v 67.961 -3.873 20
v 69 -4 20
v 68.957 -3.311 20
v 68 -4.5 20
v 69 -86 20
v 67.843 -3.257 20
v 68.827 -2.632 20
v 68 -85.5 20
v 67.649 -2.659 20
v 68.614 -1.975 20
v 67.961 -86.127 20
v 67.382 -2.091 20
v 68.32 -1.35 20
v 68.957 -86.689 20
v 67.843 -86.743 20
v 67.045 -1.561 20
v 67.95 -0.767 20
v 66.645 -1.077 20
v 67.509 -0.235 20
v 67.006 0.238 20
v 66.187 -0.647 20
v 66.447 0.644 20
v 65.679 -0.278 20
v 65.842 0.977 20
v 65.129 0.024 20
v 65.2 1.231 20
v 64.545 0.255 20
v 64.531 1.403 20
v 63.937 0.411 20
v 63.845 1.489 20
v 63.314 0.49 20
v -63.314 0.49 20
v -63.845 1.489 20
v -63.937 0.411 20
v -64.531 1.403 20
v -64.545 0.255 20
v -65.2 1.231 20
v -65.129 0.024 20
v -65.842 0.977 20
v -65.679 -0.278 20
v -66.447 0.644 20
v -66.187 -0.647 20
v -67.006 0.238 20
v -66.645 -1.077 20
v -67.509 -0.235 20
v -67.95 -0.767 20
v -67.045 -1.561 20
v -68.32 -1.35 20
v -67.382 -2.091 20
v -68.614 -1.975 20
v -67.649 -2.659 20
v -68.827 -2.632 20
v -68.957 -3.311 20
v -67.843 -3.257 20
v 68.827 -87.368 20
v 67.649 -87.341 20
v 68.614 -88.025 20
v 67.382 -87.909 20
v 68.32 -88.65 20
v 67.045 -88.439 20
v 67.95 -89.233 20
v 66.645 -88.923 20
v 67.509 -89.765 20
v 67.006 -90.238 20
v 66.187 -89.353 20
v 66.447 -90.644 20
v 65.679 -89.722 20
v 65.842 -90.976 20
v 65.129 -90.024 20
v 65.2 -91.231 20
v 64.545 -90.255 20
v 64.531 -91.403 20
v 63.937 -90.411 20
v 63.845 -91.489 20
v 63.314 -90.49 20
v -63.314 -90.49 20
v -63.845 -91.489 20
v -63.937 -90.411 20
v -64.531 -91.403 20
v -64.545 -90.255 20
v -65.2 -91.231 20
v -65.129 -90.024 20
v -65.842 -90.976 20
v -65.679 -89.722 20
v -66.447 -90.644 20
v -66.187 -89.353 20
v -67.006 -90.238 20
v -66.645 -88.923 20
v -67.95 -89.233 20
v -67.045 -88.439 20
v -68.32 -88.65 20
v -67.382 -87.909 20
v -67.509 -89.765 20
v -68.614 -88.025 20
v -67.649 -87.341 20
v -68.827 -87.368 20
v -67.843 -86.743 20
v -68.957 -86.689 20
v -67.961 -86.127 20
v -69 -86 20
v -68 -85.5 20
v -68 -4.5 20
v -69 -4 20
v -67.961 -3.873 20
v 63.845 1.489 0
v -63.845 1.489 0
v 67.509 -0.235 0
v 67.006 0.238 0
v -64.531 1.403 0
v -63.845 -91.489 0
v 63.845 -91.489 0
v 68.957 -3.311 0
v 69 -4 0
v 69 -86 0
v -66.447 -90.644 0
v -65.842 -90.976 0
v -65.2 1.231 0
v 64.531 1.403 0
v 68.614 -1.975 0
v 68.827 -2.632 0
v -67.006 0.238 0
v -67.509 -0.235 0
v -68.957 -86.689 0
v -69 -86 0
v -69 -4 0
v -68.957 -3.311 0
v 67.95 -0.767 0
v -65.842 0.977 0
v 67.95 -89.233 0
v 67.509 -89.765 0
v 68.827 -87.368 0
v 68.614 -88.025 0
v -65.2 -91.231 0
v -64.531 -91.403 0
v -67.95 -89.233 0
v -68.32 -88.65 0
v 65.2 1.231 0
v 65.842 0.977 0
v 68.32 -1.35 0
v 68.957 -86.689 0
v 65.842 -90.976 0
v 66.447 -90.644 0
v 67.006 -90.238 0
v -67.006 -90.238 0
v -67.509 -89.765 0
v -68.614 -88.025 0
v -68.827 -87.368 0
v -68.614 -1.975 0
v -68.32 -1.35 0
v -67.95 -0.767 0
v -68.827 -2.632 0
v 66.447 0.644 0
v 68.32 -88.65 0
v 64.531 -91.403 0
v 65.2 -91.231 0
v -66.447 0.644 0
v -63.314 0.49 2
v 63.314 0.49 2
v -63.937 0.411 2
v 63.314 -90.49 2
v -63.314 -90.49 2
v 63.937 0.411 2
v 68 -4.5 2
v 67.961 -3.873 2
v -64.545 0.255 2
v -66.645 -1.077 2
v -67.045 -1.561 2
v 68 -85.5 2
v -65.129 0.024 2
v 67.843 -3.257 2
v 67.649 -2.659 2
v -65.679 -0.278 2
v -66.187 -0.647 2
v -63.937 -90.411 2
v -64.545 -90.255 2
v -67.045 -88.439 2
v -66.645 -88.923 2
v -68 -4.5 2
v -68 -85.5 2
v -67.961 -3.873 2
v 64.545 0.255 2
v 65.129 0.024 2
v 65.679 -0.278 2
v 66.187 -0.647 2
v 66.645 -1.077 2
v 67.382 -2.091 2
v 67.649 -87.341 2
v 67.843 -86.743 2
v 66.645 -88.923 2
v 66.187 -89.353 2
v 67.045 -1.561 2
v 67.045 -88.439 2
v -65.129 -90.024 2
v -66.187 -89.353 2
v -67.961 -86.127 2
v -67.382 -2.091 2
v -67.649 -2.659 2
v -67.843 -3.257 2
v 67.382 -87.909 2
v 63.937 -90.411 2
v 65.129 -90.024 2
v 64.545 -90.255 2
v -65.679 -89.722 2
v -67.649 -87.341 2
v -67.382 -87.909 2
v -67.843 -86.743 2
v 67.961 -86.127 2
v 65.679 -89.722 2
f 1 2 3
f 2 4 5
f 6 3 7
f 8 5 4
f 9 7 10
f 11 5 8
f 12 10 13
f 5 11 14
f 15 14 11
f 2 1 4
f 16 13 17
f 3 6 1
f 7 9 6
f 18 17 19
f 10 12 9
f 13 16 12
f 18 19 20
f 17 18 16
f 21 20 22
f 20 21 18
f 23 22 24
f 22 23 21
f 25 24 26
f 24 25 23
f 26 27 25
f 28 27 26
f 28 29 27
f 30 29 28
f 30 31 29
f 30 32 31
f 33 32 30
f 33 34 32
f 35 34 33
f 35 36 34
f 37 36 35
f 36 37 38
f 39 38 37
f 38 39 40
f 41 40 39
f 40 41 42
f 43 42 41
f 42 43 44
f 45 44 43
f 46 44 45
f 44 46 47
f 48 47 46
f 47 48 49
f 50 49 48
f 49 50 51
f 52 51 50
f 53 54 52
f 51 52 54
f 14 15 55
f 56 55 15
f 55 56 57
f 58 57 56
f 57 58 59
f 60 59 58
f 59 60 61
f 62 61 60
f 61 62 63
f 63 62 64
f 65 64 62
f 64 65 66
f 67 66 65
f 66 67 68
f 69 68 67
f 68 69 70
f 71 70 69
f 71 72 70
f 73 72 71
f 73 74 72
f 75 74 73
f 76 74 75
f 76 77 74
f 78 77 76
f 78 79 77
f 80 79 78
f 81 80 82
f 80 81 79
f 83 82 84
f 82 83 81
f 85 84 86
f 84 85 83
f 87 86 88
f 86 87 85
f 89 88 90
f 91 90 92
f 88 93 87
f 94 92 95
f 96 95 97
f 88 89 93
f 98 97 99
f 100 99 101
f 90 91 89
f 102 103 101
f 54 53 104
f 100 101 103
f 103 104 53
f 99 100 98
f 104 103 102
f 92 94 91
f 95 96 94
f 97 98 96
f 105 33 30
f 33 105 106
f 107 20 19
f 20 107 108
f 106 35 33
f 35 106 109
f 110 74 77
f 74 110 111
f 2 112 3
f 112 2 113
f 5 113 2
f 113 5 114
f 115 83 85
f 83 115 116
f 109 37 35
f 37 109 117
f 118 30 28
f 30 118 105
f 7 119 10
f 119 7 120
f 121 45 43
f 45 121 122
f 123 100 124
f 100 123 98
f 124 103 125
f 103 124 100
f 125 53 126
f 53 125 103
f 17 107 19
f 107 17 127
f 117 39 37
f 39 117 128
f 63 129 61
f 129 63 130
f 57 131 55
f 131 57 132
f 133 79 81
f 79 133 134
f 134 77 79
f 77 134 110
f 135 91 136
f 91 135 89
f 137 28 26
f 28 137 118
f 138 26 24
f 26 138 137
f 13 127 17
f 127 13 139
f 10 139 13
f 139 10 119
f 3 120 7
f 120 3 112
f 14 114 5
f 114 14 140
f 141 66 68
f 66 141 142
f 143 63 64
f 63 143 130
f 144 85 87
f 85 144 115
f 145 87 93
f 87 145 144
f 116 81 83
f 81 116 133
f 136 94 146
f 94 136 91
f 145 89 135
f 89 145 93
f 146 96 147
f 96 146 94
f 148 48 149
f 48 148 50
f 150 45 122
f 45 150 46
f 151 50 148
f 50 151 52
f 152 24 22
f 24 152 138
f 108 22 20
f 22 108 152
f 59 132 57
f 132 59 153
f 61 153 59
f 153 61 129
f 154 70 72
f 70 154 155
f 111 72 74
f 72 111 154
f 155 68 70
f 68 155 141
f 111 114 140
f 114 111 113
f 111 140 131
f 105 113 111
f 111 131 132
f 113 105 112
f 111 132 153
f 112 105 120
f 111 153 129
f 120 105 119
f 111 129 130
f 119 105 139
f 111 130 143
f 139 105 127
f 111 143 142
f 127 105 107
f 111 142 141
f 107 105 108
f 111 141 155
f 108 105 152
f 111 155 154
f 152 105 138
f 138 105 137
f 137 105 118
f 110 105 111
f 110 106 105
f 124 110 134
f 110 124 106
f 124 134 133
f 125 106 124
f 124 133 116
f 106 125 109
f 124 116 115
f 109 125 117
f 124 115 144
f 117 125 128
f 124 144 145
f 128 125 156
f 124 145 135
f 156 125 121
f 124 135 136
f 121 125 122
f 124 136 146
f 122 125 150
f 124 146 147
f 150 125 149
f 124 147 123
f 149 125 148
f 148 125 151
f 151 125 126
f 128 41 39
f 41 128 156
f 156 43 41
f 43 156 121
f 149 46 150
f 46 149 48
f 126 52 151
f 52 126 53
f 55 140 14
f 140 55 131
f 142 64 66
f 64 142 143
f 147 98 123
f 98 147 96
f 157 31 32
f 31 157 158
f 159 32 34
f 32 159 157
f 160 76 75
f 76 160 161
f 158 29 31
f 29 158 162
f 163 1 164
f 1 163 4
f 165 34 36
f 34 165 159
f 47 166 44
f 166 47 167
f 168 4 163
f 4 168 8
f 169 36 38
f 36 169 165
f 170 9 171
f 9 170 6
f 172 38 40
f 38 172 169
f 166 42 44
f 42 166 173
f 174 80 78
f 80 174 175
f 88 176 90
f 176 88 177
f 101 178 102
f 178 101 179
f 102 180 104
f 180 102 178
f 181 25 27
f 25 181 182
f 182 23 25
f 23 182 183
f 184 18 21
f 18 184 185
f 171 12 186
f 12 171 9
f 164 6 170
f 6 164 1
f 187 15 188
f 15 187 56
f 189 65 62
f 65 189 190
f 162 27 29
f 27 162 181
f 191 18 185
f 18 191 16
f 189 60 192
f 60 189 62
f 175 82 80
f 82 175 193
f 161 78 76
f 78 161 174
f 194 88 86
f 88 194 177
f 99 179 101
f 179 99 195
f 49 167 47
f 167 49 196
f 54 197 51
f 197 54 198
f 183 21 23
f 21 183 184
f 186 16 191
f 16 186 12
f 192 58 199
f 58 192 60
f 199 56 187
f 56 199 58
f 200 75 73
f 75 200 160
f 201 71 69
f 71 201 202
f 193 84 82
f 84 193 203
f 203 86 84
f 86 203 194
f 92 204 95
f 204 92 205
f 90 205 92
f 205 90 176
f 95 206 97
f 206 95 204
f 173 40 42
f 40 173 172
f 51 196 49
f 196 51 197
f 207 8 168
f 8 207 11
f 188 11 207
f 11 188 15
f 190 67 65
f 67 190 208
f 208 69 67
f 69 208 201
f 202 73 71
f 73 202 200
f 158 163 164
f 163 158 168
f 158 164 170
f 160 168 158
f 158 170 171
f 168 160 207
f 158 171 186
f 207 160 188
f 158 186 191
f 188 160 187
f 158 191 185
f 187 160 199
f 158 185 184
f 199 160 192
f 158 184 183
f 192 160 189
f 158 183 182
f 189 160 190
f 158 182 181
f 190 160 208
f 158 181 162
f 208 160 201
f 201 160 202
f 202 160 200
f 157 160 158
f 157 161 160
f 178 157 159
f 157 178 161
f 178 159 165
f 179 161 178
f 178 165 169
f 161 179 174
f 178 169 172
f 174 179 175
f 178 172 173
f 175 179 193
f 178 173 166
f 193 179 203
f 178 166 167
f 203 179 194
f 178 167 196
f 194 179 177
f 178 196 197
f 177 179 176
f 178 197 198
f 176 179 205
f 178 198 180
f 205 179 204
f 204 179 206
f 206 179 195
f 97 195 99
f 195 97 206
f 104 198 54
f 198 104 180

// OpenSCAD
$fn = 50;


difference() {
	union() {
		translate(v = [0, -45.0000000000, 0]) {
			hull() {
				translate(v = [-63.5000000000, 41.0000000000, 0]) {
					cylinder(h = 20, r = 5.5000000000);
				}
				translate(v = [63.5000000000, 41.0000000000, 0]) {
					cylinder(h = 20, r = 5.5000000000);
				}
				translate(v = [-63.5000000000, -41.0000000000, 0]) {
					cylinder(h = 20, r = 5.5000000000);
				}
				translate(v = [63.5000000000, -41.0000000000, 0]) {
					cylinder(h = 20, r = 5.5000000000);
				}
			}
		}
	}
	union() {
		translate(v = [0, -45.0000000000, 2]) {
			hull() {
				translate(v = [-63.0000000000, 40.5000000000, 0]) {
					cylinder(h = 40, r = 5);
				}
				translate(v = [63.0000000000, 40.5000000000, 0]) {
					cylinder(h = 40, r = 5);
				}
				translate(v = [-63.0000000000, -40.5000000000, 0]) {
					cylinder(h = 40, r = 5);
				}
				translate(v = [63.0000000000, -40.5000000000, 0]) {
					cylinder(h = 40, r = 5);
				}
			}
		}
	}
}
